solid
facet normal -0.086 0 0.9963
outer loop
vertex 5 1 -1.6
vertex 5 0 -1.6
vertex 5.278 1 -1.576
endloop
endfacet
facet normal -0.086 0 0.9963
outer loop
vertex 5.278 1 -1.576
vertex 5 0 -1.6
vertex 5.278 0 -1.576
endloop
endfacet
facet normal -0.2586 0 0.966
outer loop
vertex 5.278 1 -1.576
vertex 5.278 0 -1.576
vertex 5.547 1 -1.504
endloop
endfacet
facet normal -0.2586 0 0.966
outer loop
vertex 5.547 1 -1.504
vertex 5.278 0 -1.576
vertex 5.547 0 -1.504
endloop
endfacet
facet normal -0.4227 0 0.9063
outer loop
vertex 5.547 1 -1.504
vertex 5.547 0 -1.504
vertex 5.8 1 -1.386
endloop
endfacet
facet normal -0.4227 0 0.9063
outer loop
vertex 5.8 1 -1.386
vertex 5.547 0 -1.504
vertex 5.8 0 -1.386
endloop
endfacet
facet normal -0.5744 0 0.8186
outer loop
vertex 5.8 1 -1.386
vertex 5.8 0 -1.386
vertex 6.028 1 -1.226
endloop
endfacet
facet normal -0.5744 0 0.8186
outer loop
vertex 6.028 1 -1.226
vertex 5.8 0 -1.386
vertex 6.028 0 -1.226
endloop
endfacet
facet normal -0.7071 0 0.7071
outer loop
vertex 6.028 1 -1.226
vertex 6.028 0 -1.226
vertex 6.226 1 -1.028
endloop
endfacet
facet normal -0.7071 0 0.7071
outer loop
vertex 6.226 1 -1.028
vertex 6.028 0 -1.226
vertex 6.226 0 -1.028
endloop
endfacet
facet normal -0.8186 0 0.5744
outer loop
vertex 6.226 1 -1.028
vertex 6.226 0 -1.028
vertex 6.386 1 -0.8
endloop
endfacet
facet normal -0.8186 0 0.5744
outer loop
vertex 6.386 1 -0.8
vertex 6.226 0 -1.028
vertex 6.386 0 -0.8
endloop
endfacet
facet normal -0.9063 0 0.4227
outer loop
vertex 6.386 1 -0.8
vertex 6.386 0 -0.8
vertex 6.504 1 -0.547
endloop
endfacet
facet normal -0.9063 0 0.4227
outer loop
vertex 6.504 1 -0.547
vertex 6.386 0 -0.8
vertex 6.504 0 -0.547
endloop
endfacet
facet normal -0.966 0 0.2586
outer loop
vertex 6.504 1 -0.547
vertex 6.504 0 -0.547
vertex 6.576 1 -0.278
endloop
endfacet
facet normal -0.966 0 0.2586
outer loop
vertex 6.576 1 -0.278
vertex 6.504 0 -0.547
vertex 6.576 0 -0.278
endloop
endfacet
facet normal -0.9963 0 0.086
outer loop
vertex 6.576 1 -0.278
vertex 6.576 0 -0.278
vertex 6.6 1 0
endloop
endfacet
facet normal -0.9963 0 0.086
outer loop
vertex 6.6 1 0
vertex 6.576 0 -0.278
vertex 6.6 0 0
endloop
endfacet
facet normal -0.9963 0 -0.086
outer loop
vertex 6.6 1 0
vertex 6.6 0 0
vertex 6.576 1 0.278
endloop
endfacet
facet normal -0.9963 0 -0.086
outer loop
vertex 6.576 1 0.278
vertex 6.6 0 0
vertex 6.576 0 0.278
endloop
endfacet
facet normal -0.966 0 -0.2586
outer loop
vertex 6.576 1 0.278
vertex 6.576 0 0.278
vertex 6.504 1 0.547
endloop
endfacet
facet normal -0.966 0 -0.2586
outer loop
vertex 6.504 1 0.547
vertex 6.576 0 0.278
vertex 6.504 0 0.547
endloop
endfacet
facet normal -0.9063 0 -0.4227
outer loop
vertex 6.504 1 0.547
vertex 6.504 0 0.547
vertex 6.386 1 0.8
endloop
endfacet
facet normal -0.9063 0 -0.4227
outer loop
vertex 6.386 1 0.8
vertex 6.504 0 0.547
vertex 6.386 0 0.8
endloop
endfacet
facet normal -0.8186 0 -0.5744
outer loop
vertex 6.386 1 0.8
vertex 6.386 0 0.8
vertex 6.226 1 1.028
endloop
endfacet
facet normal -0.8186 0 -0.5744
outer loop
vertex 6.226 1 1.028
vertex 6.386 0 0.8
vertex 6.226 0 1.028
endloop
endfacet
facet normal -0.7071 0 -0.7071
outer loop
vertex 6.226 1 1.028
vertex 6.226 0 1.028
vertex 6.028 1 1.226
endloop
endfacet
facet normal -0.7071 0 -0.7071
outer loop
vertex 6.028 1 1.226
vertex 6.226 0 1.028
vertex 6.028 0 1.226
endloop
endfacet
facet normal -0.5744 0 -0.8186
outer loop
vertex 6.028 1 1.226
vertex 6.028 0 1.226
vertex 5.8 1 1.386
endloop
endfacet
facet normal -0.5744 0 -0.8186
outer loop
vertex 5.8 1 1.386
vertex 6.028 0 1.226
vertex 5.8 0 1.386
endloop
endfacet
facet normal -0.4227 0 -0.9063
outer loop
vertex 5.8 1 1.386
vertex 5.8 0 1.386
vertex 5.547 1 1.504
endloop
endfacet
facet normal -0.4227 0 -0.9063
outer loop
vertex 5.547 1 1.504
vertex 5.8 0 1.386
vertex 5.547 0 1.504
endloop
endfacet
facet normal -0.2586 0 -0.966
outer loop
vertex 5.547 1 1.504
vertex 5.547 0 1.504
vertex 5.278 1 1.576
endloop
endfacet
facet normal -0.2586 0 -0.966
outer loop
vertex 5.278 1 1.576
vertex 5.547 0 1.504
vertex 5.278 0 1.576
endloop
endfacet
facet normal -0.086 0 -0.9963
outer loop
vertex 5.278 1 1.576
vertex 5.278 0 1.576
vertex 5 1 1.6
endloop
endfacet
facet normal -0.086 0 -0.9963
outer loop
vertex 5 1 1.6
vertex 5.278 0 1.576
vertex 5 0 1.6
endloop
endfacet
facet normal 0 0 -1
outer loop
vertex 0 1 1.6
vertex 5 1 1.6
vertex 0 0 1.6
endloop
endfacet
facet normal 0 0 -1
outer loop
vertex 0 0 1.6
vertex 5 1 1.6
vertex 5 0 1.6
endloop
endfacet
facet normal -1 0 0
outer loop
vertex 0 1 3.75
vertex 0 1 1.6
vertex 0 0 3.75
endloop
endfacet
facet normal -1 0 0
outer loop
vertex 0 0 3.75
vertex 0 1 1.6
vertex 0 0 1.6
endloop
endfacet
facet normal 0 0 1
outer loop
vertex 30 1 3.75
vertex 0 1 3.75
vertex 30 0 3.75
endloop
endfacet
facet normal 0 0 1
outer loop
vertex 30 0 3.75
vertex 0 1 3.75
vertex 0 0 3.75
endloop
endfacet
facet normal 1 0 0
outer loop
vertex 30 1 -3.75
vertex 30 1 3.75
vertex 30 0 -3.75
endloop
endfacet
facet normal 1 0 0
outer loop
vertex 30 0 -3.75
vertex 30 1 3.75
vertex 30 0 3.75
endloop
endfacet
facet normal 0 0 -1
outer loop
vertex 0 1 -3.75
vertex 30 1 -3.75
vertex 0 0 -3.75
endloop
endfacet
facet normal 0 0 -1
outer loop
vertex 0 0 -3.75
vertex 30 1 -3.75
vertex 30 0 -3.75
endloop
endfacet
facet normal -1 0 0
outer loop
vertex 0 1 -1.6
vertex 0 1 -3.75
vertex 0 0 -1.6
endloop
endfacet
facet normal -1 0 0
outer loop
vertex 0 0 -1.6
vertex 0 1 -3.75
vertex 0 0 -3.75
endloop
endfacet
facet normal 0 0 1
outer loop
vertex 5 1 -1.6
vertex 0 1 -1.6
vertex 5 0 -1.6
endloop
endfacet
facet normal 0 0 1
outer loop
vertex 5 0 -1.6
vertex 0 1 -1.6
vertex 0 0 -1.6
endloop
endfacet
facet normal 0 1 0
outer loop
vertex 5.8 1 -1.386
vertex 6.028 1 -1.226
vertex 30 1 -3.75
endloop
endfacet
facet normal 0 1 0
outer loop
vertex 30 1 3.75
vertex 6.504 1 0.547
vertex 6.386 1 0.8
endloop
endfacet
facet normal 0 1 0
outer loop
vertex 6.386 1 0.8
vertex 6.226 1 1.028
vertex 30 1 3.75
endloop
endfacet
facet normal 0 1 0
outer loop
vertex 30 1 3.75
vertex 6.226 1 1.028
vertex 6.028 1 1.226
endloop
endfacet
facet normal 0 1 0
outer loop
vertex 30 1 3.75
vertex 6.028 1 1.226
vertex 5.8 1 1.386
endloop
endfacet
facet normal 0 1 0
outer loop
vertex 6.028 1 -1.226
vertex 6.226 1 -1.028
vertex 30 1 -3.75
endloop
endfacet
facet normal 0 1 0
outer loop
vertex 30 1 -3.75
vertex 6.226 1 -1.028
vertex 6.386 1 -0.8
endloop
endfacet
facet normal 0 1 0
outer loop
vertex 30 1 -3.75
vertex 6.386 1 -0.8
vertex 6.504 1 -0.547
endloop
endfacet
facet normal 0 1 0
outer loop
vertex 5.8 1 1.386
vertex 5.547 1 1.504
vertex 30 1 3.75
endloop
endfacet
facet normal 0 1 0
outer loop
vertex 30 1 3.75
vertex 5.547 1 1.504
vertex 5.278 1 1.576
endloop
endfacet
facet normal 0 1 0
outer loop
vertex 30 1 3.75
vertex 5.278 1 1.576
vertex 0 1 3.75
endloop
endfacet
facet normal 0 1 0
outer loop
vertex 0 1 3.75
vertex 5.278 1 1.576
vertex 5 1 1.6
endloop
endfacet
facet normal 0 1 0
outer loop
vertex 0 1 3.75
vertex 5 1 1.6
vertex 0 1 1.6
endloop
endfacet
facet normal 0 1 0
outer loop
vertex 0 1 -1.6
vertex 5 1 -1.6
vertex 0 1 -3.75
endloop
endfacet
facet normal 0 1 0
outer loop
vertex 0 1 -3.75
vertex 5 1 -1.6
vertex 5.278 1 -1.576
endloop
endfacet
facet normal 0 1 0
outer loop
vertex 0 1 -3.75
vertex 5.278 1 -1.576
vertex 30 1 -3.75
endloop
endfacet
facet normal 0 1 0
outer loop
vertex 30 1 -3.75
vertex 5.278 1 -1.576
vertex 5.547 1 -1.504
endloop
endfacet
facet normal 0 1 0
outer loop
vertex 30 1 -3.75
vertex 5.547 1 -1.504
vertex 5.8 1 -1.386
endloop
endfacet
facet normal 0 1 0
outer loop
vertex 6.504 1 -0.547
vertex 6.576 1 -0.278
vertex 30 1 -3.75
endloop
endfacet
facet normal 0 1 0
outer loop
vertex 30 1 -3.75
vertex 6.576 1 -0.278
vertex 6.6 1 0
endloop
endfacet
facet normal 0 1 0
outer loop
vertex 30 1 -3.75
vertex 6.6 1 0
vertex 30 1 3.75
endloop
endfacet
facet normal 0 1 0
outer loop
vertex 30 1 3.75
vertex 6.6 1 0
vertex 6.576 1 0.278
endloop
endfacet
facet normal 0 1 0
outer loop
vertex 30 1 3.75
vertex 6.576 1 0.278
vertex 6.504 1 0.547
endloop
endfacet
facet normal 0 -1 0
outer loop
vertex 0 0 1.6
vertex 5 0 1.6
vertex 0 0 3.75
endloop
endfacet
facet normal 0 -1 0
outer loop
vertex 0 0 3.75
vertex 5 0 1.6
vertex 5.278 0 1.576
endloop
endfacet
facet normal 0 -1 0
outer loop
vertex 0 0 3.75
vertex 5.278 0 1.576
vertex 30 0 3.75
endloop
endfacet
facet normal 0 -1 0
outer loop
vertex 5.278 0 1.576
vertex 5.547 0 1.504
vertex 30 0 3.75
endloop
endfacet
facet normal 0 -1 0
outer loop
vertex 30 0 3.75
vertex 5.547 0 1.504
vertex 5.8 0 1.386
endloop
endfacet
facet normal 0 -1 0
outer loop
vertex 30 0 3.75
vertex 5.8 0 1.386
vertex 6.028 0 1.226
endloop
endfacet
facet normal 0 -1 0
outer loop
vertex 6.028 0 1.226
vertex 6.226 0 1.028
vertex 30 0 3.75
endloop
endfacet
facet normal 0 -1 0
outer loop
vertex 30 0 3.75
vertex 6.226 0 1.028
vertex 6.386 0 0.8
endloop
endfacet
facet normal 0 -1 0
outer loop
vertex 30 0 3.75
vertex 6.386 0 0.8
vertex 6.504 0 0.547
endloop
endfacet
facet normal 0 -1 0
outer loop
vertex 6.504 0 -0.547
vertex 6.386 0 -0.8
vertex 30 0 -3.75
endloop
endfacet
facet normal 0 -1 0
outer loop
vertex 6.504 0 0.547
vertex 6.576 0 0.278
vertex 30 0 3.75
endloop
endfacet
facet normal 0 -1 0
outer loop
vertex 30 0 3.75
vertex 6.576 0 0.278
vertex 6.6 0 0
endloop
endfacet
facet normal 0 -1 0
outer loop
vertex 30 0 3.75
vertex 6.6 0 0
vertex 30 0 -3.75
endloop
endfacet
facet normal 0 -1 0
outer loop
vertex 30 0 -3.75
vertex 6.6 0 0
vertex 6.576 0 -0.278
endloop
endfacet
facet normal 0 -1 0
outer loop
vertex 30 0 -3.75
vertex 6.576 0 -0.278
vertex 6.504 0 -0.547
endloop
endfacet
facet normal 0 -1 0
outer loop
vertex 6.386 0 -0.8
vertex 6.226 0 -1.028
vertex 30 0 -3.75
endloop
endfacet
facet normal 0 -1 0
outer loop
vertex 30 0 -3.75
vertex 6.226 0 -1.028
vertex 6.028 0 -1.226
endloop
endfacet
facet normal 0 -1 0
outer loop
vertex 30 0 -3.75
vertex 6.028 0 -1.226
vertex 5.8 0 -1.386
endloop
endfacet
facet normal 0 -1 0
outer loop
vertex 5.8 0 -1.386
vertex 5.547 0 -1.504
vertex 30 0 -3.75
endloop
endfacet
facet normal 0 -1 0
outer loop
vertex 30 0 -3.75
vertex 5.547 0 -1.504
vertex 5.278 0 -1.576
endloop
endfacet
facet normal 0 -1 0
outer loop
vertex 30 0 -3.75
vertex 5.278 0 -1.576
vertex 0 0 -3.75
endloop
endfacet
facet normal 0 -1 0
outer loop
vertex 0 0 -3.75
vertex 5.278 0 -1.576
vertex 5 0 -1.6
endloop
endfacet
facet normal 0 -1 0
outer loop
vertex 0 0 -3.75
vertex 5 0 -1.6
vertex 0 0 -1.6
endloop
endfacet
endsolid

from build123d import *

# Parameters (mm, degrees)
BOSS_EXTRUDE1_DEPTH = 1


with BuildPart() as part:
    # Sketch1 → Boss-Extrude1 (new body)
    with BuildSketch(Plane(origin=(0, 0, 0), x_dir=(1, 0, 0), z_dir=(0, 1, 0))):
        with BuildLine():
            Line((0, 3.75), (0, 1.6))
            Line((0, 1.6), (5, 1.6))
            ThreePointArc((5, 1.6), (6.6, 0), (5, -1.6))
            Line((5, -1.6), (0, -1.6))
            Line((0, -1.6), (0, -3.75))
            Line((0, -3.75), (30, -3.75))
            Line((30, -3.75), (30, 3.75))
            Line((30, 3.75), (0, 3.75))
        make_face()
    extrude(amount=BOSS_EXTRUDE1_DEPTH)


solid = part.part
